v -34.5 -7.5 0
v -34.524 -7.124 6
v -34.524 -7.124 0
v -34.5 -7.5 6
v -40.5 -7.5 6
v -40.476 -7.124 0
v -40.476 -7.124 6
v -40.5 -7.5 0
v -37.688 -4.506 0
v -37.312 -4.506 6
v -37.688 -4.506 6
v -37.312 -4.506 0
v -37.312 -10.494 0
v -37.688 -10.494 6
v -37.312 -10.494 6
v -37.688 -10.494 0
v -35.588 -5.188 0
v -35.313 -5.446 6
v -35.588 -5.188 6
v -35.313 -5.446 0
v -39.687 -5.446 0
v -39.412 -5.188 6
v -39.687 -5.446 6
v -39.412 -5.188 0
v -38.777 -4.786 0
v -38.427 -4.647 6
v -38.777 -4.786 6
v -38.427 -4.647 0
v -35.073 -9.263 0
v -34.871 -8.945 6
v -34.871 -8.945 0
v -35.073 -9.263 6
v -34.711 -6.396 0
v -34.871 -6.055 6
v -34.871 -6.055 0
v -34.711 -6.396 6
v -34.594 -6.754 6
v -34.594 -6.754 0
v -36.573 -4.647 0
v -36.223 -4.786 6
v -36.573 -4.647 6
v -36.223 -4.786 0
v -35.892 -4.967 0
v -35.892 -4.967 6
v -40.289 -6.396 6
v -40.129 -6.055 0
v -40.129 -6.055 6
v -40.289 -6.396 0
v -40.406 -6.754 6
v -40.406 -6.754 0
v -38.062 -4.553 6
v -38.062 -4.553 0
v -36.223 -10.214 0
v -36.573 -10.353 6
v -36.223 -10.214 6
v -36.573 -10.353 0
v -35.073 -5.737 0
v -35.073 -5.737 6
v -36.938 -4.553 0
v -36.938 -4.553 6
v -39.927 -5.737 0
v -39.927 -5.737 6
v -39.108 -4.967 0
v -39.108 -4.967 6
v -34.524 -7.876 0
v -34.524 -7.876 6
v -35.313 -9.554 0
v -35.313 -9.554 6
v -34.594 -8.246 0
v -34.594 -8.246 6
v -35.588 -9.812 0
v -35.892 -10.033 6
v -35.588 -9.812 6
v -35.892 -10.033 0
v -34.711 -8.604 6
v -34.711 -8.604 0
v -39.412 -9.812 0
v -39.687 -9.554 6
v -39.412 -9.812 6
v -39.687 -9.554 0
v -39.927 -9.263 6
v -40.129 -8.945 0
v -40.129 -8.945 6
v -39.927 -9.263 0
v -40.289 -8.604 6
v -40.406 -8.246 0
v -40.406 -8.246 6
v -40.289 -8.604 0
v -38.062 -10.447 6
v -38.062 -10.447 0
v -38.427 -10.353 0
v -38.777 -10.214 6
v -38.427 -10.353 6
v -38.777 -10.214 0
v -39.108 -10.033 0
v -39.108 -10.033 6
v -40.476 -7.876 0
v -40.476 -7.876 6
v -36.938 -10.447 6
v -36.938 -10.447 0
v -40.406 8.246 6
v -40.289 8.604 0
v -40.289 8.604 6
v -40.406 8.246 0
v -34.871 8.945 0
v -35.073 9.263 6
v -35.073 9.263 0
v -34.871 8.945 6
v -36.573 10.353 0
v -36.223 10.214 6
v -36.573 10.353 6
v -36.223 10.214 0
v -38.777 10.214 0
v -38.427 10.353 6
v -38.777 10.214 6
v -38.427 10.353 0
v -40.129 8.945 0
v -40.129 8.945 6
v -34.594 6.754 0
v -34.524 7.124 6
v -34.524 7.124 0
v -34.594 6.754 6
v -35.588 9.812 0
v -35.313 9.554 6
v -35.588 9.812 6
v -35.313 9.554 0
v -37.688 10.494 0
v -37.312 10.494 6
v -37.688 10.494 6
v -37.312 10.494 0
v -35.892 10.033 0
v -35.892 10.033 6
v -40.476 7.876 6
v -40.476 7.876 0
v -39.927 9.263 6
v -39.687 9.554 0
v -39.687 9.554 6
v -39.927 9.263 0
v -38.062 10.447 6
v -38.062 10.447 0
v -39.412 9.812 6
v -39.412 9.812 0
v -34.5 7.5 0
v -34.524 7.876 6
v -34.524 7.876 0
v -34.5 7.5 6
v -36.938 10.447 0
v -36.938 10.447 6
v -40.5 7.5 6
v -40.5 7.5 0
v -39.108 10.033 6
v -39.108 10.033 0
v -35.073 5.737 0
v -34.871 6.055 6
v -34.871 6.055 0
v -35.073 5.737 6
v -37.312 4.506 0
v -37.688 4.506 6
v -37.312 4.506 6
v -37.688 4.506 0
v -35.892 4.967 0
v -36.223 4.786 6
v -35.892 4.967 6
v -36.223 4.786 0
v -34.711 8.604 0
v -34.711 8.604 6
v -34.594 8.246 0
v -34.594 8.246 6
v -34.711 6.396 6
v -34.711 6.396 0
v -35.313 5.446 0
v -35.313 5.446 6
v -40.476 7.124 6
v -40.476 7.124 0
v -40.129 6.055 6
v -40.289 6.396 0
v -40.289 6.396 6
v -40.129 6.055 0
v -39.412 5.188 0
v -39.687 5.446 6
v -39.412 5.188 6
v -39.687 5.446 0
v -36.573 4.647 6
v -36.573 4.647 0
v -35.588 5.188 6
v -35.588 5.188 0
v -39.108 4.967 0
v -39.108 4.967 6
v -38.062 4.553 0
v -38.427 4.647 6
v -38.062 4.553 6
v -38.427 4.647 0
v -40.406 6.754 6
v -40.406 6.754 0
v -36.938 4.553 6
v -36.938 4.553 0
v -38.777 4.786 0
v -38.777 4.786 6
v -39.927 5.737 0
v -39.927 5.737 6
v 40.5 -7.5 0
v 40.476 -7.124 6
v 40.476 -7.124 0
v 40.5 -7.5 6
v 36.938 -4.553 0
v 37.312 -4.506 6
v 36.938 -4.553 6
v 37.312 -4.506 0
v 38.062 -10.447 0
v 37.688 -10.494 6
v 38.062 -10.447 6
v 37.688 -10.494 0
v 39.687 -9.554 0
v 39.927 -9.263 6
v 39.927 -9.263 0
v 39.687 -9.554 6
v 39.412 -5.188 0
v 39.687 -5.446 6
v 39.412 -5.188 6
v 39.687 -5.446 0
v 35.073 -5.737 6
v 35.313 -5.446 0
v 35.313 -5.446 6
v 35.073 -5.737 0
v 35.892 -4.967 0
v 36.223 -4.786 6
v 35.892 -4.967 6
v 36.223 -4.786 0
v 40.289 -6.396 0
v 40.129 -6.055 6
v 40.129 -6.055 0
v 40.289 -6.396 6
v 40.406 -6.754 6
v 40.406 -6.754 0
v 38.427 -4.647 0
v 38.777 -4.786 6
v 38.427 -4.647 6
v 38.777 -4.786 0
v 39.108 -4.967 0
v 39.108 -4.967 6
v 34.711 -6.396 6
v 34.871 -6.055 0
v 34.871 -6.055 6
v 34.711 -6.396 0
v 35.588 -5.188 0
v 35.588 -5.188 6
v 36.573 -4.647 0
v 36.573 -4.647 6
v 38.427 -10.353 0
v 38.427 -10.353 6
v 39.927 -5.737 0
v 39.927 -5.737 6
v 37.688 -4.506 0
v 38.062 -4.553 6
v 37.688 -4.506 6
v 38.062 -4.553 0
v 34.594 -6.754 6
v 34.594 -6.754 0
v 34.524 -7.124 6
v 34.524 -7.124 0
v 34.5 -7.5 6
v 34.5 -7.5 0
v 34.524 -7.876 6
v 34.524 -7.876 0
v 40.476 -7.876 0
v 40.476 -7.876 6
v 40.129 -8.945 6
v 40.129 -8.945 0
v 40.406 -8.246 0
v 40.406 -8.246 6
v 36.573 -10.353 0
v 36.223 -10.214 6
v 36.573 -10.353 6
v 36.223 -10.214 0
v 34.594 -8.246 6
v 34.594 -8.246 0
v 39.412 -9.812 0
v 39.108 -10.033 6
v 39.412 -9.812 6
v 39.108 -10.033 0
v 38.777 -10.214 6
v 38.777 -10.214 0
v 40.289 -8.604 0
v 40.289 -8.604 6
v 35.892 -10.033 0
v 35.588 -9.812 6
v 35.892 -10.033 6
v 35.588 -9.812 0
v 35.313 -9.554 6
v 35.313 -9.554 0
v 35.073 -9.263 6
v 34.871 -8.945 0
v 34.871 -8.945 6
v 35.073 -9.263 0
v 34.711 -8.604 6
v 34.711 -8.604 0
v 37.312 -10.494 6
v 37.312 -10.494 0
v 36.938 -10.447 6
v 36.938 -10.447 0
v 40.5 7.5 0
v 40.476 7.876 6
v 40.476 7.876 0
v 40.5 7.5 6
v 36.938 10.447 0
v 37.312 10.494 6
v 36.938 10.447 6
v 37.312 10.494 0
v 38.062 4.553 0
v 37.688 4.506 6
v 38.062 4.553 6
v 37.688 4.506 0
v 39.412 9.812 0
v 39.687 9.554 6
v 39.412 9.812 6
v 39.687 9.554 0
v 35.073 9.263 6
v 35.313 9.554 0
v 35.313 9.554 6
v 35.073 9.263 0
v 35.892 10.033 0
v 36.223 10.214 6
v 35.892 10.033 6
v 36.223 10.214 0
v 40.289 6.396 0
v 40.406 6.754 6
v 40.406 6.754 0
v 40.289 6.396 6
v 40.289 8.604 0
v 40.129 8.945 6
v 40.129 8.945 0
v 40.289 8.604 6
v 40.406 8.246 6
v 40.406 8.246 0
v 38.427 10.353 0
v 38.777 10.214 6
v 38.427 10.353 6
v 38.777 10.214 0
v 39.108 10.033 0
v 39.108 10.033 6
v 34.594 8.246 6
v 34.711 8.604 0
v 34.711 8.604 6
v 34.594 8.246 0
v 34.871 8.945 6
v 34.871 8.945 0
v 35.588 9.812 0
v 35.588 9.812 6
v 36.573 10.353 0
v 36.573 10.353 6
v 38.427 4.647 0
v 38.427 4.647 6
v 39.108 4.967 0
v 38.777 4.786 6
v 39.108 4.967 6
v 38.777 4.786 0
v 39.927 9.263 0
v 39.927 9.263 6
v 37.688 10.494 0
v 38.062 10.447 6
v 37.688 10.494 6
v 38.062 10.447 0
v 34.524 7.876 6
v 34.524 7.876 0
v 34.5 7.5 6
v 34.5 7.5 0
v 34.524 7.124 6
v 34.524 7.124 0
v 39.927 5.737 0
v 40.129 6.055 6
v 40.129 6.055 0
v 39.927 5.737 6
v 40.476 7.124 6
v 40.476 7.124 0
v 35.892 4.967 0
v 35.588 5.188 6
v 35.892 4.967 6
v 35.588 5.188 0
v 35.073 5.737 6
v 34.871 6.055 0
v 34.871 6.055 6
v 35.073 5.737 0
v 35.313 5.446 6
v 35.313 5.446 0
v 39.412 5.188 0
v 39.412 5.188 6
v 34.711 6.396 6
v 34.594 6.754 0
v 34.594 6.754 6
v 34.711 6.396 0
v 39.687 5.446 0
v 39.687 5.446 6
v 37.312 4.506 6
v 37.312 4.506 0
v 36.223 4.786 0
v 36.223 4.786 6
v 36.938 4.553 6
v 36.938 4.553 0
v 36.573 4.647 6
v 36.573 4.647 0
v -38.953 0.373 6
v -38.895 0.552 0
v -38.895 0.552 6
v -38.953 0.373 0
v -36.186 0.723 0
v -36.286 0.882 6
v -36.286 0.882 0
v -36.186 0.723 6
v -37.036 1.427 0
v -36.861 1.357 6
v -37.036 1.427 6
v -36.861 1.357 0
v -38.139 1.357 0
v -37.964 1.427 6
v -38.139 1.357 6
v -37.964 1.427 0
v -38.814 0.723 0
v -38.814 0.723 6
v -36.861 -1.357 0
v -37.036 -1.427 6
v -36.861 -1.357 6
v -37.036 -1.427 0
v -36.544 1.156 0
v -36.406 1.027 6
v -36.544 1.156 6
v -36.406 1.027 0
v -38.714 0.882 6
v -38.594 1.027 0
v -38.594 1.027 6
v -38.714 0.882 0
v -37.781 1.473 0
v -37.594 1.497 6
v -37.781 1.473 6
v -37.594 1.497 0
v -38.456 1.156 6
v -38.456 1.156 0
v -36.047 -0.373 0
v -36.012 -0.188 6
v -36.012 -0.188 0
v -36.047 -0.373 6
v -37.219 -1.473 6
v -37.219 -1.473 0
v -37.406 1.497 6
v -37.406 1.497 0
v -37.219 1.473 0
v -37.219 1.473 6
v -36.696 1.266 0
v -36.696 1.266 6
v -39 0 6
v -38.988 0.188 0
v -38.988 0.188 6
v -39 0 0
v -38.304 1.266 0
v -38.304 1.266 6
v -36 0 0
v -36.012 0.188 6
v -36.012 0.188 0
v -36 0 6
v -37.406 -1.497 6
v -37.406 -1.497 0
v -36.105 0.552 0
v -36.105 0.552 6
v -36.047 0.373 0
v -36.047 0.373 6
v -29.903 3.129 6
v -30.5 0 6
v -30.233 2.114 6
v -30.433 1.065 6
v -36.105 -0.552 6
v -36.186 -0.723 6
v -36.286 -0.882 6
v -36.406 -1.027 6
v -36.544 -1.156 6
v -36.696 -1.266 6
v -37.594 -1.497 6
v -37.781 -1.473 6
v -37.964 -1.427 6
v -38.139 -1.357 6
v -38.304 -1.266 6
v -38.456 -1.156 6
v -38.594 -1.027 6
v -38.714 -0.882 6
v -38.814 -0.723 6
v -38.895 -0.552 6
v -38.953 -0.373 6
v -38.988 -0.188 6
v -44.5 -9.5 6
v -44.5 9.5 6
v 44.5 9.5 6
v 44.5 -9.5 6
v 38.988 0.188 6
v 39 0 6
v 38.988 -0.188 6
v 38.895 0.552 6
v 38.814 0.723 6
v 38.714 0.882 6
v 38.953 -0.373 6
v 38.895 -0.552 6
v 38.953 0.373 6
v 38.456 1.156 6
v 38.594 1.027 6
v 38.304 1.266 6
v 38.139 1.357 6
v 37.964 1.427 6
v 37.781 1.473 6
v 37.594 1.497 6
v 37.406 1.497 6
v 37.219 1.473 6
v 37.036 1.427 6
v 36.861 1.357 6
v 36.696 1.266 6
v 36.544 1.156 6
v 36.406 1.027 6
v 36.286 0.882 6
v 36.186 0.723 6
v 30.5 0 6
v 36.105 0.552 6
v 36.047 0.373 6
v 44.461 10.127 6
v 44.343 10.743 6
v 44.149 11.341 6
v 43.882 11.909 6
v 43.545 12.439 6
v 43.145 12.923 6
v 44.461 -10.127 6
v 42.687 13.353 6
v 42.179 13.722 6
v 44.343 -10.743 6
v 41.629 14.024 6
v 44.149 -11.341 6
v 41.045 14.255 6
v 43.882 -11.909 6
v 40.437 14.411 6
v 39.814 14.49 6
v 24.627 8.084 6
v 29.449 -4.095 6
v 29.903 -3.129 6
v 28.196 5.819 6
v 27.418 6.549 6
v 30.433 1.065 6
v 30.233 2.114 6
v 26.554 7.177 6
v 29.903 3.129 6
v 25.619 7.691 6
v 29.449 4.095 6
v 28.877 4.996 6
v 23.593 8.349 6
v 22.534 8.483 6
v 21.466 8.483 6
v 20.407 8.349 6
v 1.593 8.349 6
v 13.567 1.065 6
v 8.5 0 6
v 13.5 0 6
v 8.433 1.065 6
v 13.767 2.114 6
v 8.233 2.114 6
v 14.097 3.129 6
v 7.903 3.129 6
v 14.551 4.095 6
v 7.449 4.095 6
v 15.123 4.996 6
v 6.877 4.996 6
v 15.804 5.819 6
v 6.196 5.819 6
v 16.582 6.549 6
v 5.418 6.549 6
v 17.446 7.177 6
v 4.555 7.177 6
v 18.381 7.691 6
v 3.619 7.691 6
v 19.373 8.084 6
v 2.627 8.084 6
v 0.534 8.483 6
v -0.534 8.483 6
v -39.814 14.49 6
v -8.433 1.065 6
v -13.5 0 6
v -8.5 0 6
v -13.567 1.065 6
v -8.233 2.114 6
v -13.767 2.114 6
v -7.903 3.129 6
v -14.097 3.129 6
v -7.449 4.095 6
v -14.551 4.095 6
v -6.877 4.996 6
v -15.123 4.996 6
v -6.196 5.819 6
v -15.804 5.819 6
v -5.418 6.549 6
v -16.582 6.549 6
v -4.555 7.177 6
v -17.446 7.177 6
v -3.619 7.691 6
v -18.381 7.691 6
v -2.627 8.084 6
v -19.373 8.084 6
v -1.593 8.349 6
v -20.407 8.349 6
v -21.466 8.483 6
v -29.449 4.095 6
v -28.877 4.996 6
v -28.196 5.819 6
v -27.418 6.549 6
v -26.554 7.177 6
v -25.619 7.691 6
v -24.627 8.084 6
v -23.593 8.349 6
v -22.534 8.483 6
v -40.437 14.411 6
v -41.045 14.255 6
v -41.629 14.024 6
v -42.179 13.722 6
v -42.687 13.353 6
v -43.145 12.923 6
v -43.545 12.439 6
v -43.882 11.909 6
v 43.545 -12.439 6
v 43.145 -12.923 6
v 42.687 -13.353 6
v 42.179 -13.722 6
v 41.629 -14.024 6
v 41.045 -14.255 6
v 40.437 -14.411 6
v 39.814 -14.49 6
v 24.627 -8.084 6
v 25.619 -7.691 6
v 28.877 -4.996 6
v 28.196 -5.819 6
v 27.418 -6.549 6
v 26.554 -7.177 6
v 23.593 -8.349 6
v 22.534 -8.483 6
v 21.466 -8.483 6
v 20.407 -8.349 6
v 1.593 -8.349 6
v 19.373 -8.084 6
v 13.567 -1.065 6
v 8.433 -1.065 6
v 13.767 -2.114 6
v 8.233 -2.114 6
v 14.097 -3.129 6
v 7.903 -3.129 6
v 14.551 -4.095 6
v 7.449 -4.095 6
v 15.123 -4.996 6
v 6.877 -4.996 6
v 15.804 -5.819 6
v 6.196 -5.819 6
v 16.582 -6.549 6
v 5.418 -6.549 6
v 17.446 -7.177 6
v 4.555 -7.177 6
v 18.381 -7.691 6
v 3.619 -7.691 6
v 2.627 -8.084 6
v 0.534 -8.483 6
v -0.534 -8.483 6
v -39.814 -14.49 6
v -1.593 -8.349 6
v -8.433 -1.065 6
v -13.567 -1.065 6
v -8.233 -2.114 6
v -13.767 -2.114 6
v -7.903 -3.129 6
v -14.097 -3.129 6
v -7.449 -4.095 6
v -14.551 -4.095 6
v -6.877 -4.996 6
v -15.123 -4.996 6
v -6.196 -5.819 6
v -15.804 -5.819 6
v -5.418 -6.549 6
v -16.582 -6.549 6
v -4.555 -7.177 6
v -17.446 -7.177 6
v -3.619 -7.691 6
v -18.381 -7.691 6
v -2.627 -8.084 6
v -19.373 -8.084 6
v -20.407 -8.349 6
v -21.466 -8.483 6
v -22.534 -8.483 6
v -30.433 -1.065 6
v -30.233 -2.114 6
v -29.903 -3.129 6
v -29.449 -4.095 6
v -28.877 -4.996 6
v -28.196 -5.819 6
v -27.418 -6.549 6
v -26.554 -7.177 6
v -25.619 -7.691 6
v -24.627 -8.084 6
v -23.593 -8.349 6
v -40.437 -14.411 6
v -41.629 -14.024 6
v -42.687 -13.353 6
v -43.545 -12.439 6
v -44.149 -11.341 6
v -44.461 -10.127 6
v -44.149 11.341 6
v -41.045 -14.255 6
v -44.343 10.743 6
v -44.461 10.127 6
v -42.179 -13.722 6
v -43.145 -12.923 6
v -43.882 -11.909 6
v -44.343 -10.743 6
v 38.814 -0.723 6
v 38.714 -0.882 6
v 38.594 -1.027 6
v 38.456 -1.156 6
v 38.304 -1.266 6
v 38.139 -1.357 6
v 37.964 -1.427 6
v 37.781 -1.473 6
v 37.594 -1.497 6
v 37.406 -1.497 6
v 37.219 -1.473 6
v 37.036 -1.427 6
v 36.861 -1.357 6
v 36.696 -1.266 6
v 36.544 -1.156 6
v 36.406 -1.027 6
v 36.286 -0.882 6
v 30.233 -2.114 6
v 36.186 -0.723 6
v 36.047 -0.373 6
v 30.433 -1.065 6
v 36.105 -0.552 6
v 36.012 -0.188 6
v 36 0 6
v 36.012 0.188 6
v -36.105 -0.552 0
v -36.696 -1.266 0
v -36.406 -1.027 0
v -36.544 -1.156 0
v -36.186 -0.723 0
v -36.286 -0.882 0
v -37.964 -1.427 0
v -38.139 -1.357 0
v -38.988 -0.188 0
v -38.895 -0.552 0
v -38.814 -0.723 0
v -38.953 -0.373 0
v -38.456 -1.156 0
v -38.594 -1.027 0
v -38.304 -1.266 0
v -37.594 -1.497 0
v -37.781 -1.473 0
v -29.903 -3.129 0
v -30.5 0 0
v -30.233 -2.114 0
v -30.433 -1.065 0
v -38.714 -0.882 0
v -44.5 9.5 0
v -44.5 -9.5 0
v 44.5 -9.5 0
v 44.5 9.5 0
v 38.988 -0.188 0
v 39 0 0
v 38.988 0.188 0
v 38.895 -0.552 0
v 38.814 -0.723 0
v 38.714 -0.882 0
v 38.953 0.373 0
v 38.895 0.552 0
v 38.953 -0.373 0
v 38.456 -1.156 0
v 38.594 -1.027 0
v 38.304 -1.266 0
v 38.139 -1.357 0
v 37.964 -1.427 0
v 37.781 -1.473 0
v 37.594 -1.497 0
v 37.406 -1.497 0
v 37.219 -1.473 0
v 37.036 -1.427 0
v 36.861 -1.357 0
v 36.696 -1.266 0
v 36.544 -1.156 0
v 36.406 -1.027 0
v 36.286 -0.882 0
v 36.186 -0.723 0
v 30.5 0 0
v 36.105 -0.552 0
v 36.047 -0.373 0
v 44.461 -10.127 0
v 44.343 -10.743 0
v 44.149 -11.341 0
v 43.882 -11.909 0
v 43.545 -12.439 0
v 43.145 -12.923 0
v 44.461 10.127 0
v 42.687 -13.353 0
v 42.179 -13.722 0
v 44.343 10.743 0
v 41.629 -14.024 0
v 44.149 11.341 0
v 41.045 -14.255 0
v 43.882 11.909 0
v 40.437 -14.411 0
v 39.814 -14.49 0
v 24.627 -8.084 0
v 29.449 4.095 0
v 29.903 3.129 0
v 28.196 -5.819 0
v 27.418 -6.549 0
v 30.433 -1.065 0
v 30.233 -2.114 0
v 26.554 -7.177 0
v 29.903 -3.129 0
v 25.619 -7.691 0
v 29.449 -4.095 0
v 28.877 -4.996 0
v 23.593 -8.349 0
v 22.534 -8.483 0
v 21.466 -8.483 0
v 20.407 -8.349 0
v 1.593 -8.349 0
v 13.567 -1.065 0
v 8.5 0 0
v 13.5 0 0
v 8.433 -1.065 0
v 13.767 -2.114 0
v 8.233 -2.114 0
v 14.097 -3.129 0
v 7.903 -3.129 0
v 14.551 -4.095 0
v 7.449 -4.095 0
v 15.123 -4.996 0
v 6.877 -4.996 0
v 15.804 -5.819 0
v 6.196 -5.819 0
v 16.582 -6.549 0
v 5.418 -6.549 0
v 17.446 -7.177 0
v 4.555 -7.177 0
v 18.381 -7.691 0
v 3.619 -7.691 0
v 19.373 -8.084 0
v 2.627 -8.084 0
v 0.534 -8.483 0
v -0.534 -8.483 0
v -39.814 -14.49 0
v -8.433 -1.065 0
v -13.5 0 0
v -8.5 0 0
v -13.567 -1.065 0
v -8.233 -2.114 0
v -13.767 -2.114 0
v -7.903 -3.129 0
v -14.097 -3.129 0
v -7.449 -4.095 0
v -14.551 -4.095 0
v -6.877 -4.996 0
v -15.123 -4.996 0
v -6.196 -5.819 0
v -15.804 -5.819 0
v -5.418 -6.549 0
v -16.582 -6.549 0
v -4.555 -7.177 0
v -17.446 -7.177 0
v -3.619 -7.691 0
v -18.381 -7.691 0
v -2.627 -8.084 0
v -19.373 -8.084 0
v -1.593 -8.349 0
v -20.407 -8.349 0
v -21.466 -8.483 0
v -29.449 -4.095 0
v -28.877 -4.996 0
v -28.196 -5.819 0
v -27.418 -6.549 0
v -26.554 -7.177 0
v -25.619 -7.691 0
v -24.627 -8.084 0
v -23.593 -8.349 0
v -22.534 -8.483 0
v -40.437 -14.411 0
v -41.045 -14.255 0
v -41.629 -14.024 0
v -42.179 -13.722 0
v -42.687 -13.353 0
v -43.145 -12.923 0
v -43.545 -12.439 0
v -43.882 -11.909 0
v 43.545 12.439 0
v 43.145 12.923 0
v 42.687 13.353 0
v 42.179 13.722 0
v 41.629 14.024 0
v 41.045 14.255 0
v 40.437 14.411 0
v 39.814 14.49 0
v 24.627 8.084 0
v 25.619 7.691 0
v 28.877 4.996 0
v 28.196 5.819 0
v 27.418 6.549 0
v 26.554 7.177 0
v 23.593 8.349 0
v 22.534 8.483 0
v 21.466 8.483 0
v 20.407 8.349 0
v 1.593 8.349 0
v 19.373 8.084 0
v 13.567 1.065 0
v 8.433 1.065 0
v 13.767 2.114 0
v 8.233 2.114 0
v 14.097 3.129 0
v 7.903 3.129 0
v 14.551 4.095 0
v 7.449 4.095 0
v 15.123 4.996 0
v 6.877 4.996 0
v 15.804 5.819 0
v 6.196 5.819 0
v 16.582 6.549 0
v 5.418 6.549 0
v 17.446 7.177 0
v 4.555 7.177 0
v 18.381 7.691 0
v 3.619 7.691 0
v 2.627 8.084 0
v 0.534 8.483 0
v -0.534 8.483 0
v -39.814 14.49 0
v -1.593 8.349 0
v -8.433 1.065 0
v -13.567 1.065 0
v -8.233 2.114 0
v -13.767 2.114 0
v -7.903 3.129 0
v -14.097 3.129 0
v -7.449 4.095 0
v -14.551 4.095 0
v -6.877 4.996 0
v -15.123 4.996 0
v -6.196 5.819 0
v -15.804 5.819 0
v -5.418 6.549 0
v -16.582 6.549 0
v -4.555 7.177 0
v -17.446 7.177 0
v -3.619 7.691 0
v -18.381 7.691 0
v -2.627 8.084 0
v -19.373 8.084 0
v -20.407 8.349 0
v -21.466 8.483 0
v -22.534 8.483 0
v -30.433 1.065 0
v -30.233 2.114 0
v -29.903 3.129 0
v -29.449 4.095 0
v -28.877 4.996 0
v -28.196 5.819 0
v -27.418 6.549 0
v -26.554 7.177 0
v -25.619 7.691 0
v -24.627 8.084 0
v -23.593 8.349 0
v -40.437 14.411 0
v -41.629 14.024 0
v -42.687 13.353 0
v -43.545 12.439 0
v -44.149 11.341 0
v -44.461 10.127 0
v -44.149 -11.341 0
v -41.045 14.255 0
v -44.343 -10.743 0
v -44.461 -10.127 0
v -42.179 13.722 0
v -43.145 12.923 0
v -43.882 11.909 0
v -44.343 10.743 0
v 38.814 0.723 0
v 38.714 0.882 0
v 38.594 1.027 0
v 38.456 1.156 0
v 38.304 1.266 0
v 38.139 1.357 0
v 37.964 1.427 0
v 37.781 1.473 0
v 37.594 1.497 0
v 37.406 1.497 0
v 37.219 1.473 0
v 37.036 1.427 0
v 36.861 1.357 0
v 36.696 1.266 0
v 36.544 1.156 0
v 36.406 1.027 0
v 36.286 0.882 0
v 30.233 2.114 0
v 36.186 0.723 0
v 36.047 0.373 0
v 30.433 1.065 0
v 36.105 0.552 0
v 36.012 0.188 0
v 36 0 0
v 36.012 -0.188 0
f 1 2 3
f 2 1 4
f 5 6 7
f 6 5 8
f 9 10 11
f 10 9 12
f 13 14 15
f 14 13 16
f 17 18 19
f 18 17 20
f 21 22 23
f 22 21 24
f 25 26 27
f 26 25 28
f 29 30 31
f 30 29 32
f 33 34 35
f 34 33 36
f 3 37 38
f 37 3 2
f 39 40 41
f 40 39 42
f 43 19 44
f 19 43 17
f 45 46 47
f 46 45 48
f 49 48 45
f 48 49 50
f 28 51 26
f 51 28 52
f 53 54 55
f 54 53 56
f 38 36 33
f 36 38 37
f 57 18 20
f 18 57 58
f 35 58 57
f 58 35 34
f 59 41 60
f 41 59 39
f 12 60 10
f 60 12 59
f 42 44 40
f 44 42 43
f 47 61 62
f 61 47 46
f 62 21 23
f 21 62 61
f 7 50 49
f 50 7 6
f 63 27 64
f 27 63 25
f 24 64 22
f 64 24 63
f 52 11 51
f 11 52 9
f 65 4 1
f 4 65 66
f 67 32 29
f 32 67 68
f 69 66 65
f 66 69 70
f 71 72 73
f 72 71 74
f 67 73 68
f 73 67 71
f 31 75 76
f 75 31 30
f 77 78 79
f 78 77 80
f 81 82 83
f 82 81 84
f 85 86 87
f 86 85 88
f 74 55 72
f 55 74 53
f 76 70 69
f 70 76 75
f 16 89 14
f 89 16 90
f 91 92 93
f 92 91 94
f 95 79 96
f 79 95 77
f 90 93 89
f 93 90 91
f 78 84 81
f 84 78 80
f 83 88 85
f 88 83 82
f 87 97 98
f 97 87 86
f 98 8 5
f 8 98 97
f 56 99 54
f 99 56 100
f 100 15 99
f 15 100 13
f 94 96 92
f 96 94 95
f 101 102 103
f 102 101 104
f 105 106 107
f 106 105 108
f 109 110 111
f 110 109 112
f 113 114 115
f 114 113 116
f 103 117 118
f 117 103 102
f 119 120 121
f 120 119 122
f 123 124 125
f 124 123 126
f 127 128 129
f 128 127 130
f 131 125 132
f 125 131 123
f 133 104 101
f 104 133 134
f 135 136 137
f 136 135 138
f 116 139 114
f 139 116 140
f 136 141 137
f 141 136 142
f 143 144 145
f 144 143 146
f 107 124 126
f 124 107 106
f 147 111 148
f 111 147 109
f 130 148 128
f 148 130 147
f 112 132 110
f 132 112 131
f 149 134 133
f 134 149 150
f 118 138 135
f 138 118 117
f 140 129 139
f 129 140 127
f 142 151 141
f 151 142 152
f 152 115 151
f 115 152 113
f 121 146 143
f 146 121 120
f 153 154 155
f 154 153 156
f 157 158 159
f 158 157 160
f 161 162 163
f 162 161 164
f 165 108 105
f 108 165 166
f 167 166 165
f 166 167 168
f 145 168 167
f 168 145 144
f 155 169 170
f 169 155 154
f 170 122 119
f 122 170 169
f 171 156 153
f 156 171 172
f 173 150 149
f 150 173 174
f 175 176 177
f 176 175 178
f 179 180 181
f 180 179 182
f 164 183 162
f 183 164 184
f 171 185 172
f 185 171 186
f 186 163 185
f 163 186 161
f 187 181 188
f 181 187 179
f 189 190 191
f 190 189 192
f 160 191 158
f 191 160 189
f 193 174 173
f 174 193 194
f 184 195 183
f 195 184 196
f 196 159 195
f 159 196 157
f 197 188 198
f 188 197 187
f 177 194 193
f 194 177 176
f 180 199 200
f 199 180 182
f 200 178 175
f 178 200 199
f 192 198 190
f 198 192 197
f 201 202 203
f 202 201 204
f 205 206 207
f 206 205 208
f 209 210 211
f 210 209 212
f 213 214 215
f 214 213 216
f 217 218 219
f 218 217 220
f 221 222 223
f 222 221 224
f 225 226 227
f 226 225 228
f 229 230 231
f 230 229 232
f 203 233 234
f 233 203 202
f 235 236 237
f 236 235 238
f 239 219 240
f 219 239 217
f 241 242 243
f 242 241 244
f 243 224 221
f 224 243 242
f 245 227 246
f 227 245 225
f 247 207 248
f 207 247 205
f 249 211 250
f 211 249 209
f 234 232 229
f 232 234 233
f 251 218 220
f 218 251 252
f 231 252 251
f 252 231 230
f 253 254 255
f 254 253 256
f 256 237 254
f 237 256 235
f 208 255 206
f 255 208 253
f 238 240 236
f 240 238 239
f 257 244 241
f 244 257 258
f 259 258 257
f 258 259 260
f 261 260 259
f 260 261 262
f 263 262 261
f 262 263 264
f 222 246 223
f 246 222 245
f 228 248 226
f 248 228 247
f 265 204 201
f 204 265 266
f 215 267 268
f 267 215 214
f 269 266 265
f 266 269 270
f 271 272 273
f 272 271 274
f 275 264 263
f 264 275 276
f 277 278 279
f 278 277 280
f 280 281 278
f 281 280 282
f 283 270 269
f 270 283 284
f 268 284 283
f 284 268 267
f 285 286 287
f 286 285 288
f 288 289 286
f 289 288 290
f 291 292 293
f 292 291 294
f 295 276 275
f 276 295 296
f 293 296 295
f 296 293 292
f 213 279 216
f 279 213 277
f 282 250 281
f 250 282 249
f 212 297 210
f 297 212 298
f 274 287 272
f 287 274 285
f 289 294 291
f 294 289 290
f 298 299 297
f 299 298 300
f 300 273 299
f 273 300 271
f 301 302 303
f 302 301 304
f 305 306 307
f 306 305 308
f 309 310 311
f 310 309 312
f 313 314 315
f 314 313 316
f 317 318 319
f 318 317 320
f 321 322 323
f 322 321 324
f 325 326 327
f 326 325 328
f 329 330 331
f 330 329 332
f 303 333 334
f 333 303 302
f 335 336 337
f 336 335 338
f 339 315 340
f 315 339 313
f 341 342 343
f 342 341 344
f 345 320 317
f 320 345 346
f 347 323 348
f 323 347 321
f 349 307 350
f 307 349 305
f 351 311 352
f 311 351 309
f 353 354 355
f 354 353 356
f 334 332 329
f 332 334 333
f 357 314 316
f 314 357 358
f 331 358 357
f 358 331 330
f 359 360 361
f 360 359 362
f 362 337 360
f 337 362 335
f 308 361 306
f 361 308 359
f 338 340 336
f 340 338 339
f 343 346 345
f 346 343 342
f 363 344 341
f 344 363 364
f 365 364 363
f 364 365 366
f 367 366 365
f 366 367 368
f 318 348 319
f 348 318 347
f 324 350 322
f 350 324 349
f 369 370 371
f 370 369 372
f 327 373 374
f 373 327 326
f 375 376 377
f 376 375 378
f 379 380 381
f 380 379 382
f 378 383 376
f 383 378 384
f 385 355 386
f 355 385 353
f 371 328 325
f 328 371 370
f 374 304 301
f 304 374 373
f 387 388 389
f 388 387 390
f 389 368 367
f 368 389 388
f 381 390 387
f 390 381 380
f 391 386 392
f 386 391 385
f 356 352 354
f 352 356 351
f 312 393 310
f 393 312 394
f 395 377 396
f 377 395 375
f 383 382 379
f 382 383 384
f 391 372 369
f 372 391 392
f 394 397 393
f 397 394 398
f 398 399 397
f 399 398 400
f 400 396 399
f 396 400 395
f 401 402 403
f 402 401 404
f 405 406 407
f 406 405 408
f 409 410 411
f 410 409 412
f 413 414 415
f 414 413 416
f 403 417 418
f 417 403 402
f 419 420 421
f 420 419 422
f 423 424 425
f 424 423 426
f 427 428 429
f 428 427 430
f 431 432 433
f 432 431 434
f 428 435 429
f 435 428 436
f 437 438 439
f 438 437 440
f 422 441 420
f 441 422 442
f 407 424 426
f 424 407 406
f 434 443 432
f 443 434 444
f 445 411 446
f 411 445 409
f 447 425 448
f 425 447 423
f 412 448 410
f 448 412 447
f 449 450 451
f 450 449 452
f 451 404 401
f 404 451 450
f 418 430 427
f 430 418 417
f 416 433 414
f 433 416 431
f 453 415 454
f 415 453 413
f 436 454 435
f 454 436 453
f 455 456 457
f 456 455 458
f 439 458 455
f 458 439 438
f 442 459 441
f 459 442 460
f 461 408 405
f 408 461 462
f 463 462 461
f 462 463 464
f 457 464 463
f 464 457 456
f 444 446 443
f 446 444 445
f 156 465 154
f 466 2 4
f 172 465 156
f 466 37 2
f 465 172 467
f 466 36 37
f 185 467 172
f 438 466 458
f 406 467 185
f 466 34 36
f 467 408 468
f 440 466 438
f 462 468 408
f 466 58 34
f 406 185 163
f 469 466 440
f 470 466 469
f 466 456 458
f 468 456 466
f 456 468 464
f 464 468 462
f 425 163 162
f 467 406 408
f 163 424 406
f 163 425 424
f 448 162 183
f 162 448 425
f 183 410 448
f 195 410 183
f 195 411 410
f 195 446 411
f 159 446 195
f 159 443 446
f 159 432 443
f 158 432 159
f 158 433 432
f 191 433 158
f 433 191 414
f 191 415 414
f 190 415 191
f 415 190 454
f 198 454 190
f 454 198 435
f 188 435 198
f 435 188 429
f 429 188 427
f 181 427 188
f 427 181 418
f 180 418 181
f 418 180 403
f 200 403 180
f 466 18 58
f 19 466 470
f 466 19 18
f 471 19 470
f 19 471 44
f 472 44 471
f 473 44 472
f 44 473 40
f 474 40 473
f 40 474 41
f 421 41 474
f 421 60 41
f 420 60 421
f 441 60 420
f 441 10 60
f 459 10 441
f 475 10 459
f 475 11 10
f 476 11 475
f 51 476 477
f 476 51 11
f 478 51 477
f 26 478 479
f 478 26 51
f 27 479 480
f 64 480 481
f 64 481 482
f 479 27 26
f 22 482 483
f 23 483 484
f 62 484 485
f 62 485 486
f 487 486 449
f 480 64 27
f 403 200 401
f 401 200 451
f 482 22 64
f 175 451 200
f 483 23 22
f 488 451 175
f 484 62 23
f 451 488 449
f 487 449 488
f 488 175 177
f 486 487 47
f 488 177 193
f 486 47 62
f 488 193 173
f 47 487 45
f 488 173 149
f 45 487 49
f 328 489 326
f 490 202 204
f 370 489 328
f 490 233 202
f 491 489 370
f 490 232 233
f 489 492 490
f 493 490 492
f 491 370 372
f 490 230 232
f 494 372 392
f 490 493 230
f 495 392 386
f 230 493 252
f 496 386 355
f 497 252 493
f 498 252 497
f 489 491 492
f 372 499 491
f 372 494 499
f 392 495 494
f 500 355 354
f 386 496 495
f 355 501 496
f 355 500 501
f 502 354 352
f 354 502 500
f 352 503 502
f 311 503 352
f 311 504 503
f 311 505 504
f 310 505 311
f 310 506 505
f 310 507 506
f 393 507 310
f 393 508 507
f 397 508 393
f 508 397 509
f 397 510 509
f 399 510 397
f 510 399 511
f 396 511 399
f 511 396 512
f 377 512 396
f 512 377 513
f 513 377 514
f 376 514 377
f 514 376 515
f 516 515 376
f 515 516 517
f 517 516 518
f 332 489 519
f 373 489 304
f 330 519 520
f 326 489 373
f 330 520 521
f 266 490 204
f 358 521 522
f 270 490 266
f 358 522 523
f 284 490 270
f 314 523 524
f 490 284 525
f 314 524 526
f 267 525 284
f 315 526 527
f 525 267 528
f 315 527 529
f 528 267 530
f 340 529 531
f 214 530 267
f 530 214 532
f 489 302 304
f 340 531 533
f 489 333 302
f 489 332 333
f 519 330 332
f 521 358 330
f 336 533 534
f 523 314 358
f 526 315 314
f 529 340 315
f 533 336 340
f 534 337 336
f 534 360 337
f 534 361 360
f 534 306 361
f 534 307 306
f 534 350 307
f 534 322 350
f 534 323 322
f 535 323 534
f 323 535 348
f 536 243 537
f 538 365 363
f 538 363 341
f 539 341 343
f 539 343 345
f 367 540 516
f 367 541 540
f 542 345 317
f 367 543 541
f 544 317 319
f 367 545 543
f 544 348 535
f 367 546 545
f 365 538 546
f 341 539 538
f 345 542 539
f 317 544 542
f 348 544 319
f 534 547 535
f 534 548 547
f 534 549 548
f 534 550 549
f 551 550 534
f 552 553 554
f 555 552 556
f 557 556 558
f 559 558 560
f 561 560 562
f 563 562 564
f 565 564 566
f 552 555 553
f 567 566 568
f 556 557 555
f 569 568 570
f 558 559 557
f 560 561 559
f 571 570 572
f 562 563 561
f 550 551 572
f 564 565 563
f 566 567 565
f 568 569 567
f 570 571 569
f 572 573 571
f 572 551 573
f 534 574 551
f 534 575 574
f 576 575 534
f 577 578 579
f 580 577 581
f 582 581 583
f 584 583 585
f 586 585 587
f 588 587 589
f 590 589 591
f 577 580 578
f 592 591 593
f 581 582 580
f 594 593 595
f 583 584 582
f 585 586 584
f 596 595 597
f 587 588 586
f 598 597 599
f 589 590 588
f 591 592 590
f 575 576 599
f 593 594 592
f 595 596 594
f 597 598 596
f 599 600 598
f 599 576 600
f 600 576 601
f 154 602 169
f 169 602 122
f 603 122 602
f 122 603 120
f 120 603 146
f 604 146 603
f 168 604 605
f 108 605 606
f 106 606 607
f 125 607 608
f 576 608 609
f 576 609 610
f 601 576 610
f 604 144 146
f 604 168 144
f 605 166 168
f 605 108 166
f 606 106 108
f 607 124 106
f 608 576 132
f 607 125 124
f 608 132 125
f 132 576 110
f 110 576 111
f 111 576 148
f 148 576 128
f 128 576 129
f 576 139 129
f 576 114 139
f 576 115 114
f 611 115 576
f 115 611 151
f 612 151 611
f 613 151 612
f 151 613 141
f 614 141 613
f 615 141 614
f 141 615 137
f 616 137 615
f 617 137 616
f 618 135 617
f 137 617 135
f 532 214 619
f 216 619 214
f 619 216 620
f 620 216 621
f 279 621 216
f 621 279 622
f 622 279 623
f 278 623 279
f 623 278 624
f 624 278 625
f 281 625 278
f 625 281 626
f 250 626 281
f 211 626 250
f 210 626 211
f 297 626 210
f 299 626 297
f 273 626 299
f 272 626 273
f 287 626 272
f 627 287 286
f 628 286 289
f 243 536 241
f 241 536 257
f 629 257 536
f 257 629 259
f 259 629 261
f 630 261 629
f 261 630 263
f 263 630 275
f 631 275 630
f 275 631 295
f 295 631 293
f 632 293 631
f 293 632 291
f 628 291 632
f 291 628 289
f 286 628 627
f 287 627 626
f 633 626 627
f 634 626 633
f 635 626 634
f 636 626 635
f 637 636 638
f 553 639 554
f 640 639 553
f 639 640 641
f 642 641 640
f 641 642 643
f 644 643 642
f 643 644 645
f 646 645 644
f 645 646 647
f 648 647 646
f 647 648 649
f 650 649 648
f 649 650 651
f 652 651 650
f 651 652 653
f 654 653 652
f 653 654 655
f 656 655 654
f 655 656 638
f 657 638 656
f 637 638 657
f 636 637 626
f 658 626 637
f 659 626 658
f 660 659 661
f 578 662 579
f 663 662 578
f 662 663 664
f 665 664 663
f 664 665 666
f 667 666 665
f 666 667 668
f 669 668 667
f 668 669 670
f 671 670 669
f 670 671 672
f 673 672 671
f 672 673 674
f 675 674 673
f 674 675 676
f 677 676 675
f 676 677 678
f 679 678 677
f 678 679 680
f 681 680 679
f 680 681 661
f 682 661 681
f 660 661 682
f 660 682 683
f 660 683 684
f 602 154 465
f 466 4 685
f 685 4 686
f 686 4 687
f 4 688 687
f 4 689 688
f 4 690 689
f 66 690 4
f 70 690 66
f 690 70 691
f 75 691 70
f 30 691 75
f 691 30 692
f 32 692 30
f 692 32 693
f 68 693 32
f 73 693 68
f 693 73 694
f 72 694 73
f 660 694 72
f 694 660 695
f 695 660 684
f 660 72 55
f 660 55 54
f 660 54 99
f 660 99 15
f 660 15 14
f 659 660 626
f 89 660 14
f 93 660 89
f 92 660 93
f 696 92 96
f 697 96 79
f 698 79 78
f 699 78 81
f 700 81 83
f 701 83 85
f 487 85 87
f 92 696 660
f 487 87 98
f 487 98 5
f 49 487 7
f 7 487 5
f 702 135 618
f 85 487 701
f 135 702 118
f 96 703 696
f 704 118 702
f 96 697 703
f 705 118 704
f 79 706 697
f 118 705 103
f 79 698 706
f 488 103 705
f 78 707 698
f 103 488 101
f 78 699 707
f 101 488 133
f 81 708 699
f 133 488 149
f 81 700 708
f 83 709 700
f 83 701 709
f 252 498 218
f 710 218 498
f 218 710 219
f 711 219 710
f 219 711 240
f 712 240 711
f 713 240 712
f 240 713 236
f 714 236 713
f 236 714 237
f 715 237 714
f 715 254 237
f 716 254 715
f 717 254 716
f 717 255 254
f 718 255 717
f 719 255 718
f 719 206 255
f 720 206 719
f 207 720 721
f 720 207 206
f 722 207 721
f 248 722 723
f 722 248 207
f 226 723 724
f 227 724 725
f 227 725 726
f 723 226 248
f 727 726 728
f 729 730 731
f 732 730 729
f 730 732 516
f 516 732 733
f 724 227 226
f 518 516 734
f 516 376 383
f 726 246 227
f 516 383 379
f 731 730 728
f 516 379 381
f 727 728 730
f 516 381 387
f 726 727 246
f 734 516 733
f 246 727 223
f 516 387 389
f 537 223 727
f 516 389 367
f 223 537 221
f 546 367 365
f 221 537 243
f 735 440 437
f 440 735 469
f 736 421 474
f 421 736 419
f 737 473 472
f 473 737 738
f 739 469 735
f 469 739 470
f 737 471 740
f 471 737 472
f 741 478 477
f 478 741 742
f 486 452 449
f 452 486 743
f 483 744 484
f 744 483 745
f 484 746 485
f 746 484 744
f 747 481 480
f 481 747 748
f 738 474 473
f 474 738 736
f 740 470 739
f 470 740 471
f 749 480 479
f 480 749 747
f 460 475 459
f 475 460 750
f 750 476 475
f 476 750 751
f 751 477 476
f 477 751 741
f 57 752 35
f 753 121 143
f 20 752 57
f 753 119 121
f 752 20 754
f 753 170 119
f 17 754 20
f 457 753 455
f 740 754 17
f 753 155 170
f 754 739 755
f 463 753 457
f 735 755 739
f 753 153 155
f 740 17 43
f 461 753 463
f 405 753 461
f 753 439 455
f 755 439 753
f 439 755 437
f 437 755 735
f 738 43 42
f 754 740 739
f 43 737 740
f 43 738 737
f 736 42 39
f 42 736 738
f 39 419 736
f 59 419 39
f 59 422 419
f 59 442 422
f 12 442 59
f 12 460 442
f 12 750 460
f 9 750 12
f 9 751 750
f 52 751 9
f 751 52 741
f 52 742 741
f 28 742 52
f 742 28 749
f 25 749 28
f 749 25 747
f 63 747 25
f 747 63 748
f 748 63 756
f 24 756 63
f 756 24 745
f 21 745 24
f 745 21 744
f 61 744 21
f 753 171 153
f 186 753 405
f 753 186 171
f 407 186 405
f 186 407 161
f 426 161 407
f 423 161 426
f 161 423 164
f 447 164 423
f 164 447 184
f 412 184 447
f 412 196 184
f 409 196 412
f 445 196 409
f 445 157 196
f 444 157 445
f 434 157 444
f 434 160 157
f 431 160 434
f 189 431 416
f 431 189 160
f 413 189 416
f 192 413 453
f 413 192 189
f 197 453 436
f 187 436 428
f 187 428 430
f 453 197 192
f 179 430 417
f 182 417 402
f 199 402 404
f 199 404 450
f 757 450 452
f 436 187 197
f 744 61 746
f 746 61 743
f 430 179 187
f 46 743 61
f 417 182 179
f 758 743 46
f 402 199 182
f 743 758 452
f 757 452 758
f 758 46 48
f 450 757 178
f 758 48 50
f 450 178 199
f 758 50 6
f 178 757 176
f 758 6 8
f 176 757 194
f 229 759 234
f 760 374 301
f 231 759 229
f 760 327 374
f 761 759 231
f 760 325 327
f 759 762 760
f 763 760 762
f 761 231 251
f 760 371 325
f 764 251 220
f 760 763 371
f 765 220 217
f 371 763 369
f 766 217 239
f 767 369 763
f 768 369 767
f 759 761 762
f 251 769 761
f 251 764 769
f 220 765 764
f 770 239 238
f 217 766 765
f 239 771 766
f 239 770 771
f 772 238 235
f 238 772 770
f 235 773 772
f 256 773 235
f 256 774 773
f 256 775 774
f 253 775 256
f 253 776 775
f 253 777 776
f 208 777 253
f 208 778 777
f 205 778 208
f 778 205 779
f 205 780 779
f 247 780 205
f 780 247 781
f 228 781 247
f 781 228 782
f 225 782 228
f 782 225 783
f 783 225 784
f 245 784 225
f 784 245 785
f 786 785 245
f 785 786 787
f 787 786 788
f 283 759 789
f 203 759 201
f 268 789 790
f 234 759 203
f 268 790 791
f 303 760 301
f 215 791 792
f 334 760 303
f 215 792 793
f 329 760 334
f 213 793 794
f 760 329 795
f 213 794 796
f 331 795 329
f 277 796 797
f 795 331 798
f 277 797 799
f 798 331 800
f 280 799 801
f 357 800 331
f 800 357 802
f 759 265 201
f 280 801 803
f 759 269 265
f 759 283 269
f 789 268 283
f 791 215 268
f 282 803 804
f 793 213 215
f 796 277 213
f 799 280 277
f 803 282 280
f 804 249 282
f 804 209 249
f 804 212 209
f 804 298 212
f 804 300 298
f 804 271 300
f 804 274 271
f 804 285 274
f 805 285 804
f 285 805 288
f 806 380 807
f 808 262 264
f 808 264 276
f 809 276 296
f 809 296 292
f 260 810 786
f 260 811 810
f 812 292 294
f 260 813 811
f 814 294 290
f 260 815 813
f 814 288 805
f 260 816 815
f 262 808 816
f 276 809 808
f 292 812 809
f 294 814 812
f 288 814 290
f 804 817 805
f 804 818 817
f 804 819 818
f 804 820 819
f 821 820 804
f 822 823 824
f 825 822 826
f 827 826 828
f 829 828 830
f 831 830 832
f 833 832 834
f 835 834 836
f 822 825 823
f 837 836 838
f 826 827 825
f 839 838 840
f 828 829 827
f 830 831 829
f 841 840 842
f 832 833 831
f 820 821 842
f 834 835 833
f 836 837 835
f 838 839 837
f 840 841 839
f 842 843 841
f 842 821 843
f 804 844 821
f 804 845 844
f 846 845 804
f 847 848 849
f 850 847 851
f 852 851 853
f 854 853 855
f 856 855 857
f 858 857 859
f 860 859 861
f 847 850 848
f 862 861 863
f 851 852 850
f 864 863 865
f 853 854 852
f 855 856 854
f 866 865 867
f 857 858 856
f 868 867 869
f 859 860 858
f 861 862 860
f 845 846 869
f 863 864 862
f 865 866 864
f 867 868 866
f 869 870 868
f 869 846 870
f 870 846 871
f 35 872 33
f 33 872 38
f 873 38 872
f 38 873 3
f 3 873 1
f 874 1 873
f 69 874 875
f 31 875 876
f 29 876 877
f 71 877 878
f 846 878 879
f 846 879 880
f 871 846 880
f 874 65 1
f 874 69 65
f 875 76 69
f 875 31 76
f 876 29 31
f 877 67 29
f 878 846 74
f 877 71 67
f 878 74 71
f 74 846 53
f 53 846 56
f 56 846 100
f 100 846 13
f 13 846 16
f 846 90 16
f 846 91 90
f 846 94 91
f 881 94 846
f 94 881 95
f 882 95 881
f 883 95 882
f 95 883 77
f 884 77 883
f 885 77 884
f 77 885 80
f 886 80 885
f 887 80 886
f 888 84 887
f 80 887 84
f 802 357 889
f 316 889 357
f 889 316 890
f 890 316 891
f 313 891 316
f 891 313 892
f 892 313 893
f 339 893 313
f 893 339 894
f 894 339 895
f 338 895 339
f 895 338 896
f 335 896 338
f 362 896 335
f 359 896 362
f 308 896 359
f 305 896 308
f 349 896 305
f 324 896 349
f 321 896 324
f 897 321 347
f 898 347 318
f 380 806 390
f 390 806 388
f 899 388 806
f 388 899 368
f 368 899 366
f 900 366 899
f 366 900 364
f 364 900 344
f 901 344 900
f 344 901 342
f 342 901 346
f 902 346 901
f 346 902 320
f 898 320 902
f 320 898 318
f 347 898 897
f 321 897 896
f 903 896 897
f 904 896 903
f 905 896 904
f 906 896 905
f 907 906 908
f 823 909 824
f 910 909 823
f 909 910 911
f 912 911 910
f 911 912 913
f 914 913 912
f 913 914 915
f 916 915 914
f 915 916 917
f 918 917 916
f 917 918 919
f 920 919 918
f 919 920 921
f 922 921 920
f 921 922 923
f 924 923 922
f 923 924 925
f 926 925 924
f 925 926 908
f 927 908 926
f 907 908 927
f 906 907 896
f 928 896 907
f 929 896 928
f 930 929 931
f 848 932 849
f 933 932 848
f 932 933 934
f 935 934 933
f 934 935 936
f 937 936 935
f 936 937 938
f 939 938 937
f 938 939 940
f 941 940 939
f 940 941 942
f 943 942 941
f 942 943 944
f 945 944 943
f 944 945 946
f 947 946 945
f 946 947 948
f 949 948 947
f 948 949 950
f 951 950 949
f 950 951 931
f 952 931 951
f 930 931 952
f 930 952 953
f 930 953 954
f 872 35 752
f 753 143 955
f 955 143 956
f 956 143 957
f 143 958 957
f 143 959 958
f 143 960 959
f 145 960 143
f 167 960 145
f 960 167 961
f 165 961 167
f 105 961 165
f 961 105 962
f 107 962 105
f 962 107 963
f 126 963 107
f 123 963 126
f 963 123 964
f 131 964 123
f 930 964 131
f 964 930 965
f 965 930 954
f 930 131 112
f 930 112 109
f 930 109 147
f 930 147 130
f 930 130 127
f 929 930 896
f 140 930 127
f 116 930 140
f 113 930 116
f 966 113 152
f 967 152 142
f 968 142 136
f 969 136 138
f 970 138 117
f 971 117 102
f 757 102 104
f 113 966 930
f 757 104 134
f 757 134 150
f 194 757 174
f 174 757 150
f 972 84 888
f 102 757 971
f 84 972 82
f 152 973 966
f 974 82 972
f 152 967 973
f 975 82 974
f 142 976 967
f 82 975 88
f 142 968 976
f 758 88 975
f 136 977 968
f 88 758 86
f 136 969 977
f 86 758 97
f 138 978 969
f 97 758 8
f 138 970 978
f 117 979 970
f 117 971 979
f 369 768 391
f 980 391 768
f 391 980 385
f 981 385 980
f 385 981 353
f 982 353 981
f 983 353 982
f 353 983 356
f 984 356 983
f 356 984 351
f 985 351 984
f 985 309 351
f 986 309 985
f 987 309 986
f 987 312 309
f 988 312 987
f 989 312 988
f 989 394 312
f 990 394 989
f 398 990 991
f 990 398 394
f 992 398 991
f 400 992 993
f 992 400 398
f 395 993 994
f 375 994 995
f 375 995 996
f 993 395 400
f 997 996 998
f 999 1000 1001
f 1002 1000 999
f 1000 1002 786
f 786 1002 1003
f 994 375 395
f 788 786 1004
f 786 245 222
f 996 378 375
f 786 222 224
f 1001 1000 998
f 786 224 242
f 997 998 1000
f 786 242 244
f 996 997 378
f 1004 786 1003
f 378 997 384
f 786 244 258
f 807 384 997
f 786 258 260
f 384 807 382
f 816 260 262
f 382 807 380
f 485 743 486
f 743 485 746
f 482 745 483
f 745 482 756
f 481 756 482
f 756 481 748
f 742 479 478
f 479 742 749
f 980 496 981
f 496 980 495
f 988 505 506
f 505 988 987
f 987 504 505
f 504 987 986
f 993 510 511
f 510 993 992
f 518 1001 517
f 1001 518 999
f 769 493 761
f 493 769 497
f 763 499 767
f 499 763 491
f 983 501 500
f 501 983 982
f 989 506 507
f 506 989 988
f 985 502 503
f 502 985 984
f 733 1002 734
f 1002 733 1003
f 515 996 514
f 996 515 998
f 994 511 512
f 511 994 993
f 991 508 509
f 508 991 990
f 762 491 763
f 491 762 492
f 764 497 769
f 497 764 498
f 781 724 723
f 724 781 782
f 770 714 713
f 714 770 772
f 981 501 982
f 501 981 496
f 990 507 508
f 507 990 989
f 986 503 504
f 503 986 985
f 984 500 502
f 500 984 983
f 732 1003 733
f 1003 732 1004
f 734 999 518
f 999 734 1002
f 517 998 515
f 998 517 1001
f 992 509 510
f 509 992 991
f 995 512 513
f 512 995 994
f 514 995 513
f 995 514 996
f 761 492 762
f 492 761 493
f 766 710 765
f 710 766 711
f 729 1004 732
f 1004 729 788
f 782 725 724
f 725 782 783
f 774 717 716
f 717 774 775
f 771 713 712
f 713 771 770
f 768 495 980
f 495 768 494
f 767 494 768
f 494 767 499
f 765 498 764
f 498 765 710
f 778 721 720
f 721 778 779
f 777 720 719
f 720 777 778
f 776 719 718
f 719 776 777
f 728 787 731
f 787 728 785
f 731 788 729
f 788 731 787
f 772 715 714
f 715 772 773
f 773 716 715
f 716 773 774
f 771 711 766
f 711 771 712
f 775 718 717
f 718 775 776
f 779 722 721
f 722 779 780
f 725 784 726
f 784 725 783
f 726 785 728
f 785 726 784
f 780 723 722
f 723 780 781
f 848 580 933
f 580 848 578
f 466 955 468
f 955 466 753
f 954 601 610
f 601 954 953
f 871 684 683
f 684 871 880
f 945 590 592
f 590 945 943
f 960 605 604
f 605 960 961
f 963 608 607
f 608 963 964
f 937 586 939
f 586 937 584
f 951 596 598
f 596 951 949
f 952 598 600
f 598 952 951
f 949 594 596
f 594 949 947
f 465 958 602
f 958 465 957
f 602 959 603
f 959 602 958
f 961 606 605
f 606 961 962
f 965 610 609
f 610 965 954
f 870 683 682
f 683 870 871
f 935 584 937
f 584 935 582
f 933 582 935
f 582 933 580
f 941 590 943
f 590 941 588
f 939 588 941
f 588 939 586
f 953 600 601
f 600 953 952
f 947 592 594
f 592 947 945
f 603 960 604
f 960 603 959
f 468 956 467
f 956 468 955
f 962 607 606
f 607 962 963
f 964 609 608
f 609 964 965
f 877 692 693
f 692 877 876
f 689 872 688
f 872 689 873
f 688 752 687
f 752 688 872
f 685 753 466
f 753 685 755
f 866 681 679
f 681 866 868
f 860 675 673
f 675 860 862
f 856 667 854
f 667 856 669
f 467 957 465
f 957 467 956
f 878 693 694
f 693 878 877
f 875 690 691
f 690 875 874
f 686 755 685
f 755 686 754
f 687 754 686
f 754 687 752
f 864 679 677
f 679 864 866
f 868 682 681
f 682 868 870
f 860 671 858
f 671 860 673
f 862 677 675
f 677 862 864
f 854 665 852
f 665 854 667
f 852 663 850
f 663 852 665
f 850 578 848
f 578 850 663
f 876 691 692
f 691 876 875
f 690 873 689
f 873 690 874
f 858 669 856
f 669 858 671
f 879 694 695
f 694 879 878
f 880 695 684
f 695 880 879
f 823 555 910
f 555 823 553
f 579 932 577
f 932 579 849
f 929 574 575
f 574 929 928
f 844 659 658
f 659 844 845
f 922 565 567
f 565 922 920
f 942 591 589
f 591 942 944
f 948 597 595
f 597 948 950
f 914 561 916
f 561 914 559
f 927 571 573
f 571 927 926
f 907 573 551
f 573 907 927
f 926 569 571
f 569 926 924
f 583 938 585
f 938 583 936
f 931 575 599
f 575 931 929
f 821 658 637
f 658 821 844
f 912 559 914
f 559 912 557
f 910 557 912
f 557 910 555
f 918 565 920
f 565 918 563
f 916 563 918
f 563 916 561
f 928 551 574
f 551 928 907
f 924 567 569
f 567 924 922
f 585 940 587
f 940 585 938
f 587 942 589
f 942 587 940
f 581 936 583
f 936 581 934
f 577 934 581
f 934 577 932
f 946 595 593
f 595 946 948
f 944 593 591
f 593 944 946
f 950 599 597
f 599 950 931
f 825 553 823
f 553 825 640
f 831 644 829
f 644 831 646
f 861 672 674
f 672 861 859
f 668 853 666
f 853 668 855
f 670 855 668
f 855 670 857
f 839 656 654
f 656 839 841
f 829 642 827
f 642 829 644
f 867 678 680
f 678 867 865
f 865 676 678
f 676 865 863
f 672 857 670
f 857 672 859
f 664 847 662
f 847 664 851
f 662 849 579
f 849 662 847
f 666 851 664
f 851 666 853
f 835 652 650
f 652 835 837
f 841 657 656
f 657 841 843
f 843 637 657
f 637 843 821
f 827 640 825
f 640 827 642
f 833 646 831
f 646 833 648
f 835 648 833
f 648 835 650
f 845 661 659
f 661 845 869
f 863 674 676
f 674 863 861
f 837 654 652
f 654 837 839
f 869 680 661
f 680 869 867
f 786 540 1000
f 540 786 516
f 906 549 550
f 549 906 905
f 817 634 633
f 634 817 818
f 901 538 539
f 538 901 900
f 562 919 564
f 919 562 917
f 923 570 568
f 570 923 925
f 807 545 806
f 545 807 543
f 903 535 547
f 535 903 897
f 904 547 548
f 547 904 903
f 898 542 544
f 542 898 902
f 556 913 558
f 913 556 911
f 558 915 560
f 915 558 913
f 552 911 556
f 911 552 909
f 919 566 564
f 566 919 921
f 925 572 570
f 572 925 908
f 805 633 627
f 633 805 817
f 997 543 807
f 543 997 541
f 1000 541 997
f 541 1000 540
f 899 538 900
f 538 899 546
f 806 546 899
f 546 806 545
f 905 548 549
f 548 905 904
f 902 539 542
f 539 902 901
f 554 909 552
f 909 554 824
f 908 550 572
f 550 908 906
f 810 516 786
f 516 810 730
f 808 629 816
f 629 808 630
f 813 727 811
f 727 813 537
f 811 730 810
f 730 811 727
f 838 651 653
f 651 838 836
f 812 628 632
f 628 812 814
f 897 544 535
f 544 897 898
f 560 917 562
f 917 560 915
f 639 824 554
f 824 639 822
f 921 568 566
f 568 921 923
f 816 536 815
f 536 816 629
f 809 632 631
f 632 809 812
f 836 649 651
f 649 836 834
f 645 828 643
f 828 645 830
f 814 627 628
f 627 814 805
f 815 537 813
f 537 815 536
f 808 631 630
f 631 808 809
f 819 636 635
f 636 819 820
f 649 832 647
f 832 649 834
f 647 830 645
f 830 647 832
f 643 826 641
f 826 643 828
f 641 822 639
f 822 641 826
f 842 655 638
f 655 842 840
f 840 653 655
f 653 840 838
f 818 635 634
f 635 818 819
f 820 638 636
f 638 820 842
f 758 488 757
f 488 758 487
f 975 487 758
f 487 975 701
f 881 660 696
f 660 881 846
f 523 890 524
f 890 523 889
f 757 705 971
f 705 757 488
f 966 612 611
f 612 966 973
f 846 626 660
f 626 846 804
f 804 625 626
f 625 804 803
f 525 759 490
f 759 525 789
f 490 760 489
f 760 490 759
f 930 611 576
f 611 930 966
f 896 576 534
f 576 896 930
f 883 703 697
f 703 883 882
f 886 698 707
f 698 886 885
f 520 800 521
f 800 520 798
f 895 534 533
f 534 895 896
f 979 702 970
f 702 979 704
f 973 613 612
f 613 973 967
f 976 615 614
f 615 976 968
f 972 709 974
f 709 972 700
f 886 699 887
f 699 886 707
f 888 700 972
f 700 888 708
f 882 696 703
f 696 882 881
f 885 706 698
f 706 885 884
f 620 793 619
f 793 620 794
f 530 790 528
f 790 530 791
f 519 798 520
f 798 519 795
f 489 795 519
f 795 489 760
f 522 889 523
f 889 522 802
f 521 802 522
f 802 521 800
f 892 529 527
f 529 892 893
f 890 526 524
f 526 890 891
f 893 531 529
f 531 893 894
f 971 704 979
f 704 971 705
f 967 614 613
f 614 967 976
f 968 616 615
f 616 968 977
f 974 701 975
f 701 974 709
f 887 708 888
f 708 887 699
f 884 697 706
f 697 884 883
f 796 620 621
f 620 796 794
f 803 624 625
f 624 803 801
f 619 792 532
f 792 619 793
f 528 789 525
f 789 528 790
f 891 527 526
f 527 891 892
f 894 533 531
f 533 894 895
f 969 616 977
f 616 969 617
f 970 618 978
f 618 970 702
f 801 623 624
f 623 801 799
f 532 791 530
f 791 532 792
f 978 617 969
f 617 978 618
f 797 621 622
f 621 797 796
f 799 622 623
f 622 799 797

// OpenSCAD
$fn = 50;


difference() {
	union() {
		hull() {
			translate(v = [-39.5000000000, 9.5000000000, 0]) {
				cylinder(h = 6, r = 5);
			}
			translate(v = [39.5000000000, 9.5000000000, 0]) {
				cylinder(h = 6, r = 5);
			}
			translate(v = [-39.5000000000, -9.5000000000, 0]) {
				cylinder(h = 6, r = 5);
			}
			translate(v = [39.5000000000, -9.5000000000, 0]) {
				cylinder(h = 6, r = 5);
			}
		}
	}
	union() {
		#translate(v = [-37.5000000000, -7.5000000000, 0]) {
			cylinder(h = 6, r = 3.0000000000);
		}
		#translate(v = [-37.5000000000, 7.5000000000, 0]) {
			cylinder(h = 6, r = 3.0000000000);
		}
		#translate(v = [37.5000000000, -7.5000000000, 0]) {
			cylinder(h = 6, r = 3.0000000000);
		}
		#translate(v = [37.5000000000, 7.5000000000, 0]) {
			cylinder(h = 6, r = 3.0000000000);
		}
		#translate(v = [-37.5000000000, -7.5000000000, -100.0000000000]) {
			cylinder(h = 200, r = 3.0000000000);
		}
		#translate(v = [-37.5000000000, 7.5000000000, -100.0000000000]) {
			cylinder(h = 200, r = 3.0000000000);
		}
		#translate(v = [37.5000000000, -7.5000000000, -100.0000000000]) {
			cylinder(h = 200, r = 3.0000000000);
		}
		#translate(v = [37.5000000000, 7.5000000000, -100.0000000000]) {
			cylinder(h = 200, r = 3.0000000000);
		}
		#translate(v = [-37.5000000000, -7.5000000000, 0]) {
			cylinder(h = 6, r = 1.5000000000);
		}
		#translate(v = [-37.5000000000, 0.0000000000, 0]) {
			cylinder(h = 6, r = 1.5000000000);
		}
		#translate(v = [-37.5000000000, 7.5000000000, 0]) {
			cylinder(h = 6, r = 1.5000000000);
		}
		#translate(v = [37.5000000000, -7.5000000000, 0]) {
			cylinder(h = 6, r = 1.5000000000);
		}
		#translate(v = [37.5000000000, 0.0000000000, 0]) {
			cylinder(h = 6, r = 1.5000000000);
		}
		#translate(v = [37.5000000000, 7.5000000000, 0]) {
			cylinder(h = 6, r = 1.5000000000);
		}
		#translate(v = [-37.5000000000, -7.5000000000, 0]) {
			cylinder(h = 6, r = 1.5000000000);
		}
		#translate(v = [-37.5000000000, 0.0000000000, 0]) {
			cylinder(h = 6, r = 1.5000000000);
		}
		#translate(v = [-37.5000000000, 7.5000000000, 0]) {
			cylinder(h = 6, r = 1.5000000000);
		}
		#translate(v = [37.5000000000, -7.5000000000, 0]) {
			cylinder(h = 6, r = 1.5000000000);
		}
		#translate(v = [37.5000000000, 0.0000000000, 0]) {
			cylinder(h = 6, r = 1.5000000000);
		}
		#translate(v = [37.5000000000, 7.5000000000, 0]) {
			cylinder(h = 6, r = 1.5000000000);
		}
		#translate(v = [-37.5000000000, -7.5000000000, 0]) {
			cylinder(h = 6, r = 1.5000000000);
		}
		#translate(v = [-37.5000000000, 0.0000000000, 0]) {
			cylinder(h = 6, r = 1.5000000000);
		}
		#translate(v = [-37.5000000000, 7.5000000000, 0]) {
			cylinder(h = 6, r = 1.5000000000);
		}
		#translate(v = [37.5000000000, -7.5000000000, 0]) {
			cylinder(h = 6, r = 1.5000000000);
		}
		#translate(v = [37.5000000000, 0.0000000000, 0]) {
			cylinder(h = 6, r = 1.5000000000);
		}
		#translate(v = [37.5000000000, 7.5000000000, 0]) {
			cylinder(h = 6, r = 1.5000000000);
		}
		#translate(v = [-22.0000000000, 0, 0]) {
			cylinder(h = 6, r = 8.5000000000);
		}
		#cylinder(h = 6, r = 8.5000000000);
		#translate(v = [22.0000000000, 0, 0]) {
			cylinder(h = 6, r = 8.5000000000);
		}
	}
}
